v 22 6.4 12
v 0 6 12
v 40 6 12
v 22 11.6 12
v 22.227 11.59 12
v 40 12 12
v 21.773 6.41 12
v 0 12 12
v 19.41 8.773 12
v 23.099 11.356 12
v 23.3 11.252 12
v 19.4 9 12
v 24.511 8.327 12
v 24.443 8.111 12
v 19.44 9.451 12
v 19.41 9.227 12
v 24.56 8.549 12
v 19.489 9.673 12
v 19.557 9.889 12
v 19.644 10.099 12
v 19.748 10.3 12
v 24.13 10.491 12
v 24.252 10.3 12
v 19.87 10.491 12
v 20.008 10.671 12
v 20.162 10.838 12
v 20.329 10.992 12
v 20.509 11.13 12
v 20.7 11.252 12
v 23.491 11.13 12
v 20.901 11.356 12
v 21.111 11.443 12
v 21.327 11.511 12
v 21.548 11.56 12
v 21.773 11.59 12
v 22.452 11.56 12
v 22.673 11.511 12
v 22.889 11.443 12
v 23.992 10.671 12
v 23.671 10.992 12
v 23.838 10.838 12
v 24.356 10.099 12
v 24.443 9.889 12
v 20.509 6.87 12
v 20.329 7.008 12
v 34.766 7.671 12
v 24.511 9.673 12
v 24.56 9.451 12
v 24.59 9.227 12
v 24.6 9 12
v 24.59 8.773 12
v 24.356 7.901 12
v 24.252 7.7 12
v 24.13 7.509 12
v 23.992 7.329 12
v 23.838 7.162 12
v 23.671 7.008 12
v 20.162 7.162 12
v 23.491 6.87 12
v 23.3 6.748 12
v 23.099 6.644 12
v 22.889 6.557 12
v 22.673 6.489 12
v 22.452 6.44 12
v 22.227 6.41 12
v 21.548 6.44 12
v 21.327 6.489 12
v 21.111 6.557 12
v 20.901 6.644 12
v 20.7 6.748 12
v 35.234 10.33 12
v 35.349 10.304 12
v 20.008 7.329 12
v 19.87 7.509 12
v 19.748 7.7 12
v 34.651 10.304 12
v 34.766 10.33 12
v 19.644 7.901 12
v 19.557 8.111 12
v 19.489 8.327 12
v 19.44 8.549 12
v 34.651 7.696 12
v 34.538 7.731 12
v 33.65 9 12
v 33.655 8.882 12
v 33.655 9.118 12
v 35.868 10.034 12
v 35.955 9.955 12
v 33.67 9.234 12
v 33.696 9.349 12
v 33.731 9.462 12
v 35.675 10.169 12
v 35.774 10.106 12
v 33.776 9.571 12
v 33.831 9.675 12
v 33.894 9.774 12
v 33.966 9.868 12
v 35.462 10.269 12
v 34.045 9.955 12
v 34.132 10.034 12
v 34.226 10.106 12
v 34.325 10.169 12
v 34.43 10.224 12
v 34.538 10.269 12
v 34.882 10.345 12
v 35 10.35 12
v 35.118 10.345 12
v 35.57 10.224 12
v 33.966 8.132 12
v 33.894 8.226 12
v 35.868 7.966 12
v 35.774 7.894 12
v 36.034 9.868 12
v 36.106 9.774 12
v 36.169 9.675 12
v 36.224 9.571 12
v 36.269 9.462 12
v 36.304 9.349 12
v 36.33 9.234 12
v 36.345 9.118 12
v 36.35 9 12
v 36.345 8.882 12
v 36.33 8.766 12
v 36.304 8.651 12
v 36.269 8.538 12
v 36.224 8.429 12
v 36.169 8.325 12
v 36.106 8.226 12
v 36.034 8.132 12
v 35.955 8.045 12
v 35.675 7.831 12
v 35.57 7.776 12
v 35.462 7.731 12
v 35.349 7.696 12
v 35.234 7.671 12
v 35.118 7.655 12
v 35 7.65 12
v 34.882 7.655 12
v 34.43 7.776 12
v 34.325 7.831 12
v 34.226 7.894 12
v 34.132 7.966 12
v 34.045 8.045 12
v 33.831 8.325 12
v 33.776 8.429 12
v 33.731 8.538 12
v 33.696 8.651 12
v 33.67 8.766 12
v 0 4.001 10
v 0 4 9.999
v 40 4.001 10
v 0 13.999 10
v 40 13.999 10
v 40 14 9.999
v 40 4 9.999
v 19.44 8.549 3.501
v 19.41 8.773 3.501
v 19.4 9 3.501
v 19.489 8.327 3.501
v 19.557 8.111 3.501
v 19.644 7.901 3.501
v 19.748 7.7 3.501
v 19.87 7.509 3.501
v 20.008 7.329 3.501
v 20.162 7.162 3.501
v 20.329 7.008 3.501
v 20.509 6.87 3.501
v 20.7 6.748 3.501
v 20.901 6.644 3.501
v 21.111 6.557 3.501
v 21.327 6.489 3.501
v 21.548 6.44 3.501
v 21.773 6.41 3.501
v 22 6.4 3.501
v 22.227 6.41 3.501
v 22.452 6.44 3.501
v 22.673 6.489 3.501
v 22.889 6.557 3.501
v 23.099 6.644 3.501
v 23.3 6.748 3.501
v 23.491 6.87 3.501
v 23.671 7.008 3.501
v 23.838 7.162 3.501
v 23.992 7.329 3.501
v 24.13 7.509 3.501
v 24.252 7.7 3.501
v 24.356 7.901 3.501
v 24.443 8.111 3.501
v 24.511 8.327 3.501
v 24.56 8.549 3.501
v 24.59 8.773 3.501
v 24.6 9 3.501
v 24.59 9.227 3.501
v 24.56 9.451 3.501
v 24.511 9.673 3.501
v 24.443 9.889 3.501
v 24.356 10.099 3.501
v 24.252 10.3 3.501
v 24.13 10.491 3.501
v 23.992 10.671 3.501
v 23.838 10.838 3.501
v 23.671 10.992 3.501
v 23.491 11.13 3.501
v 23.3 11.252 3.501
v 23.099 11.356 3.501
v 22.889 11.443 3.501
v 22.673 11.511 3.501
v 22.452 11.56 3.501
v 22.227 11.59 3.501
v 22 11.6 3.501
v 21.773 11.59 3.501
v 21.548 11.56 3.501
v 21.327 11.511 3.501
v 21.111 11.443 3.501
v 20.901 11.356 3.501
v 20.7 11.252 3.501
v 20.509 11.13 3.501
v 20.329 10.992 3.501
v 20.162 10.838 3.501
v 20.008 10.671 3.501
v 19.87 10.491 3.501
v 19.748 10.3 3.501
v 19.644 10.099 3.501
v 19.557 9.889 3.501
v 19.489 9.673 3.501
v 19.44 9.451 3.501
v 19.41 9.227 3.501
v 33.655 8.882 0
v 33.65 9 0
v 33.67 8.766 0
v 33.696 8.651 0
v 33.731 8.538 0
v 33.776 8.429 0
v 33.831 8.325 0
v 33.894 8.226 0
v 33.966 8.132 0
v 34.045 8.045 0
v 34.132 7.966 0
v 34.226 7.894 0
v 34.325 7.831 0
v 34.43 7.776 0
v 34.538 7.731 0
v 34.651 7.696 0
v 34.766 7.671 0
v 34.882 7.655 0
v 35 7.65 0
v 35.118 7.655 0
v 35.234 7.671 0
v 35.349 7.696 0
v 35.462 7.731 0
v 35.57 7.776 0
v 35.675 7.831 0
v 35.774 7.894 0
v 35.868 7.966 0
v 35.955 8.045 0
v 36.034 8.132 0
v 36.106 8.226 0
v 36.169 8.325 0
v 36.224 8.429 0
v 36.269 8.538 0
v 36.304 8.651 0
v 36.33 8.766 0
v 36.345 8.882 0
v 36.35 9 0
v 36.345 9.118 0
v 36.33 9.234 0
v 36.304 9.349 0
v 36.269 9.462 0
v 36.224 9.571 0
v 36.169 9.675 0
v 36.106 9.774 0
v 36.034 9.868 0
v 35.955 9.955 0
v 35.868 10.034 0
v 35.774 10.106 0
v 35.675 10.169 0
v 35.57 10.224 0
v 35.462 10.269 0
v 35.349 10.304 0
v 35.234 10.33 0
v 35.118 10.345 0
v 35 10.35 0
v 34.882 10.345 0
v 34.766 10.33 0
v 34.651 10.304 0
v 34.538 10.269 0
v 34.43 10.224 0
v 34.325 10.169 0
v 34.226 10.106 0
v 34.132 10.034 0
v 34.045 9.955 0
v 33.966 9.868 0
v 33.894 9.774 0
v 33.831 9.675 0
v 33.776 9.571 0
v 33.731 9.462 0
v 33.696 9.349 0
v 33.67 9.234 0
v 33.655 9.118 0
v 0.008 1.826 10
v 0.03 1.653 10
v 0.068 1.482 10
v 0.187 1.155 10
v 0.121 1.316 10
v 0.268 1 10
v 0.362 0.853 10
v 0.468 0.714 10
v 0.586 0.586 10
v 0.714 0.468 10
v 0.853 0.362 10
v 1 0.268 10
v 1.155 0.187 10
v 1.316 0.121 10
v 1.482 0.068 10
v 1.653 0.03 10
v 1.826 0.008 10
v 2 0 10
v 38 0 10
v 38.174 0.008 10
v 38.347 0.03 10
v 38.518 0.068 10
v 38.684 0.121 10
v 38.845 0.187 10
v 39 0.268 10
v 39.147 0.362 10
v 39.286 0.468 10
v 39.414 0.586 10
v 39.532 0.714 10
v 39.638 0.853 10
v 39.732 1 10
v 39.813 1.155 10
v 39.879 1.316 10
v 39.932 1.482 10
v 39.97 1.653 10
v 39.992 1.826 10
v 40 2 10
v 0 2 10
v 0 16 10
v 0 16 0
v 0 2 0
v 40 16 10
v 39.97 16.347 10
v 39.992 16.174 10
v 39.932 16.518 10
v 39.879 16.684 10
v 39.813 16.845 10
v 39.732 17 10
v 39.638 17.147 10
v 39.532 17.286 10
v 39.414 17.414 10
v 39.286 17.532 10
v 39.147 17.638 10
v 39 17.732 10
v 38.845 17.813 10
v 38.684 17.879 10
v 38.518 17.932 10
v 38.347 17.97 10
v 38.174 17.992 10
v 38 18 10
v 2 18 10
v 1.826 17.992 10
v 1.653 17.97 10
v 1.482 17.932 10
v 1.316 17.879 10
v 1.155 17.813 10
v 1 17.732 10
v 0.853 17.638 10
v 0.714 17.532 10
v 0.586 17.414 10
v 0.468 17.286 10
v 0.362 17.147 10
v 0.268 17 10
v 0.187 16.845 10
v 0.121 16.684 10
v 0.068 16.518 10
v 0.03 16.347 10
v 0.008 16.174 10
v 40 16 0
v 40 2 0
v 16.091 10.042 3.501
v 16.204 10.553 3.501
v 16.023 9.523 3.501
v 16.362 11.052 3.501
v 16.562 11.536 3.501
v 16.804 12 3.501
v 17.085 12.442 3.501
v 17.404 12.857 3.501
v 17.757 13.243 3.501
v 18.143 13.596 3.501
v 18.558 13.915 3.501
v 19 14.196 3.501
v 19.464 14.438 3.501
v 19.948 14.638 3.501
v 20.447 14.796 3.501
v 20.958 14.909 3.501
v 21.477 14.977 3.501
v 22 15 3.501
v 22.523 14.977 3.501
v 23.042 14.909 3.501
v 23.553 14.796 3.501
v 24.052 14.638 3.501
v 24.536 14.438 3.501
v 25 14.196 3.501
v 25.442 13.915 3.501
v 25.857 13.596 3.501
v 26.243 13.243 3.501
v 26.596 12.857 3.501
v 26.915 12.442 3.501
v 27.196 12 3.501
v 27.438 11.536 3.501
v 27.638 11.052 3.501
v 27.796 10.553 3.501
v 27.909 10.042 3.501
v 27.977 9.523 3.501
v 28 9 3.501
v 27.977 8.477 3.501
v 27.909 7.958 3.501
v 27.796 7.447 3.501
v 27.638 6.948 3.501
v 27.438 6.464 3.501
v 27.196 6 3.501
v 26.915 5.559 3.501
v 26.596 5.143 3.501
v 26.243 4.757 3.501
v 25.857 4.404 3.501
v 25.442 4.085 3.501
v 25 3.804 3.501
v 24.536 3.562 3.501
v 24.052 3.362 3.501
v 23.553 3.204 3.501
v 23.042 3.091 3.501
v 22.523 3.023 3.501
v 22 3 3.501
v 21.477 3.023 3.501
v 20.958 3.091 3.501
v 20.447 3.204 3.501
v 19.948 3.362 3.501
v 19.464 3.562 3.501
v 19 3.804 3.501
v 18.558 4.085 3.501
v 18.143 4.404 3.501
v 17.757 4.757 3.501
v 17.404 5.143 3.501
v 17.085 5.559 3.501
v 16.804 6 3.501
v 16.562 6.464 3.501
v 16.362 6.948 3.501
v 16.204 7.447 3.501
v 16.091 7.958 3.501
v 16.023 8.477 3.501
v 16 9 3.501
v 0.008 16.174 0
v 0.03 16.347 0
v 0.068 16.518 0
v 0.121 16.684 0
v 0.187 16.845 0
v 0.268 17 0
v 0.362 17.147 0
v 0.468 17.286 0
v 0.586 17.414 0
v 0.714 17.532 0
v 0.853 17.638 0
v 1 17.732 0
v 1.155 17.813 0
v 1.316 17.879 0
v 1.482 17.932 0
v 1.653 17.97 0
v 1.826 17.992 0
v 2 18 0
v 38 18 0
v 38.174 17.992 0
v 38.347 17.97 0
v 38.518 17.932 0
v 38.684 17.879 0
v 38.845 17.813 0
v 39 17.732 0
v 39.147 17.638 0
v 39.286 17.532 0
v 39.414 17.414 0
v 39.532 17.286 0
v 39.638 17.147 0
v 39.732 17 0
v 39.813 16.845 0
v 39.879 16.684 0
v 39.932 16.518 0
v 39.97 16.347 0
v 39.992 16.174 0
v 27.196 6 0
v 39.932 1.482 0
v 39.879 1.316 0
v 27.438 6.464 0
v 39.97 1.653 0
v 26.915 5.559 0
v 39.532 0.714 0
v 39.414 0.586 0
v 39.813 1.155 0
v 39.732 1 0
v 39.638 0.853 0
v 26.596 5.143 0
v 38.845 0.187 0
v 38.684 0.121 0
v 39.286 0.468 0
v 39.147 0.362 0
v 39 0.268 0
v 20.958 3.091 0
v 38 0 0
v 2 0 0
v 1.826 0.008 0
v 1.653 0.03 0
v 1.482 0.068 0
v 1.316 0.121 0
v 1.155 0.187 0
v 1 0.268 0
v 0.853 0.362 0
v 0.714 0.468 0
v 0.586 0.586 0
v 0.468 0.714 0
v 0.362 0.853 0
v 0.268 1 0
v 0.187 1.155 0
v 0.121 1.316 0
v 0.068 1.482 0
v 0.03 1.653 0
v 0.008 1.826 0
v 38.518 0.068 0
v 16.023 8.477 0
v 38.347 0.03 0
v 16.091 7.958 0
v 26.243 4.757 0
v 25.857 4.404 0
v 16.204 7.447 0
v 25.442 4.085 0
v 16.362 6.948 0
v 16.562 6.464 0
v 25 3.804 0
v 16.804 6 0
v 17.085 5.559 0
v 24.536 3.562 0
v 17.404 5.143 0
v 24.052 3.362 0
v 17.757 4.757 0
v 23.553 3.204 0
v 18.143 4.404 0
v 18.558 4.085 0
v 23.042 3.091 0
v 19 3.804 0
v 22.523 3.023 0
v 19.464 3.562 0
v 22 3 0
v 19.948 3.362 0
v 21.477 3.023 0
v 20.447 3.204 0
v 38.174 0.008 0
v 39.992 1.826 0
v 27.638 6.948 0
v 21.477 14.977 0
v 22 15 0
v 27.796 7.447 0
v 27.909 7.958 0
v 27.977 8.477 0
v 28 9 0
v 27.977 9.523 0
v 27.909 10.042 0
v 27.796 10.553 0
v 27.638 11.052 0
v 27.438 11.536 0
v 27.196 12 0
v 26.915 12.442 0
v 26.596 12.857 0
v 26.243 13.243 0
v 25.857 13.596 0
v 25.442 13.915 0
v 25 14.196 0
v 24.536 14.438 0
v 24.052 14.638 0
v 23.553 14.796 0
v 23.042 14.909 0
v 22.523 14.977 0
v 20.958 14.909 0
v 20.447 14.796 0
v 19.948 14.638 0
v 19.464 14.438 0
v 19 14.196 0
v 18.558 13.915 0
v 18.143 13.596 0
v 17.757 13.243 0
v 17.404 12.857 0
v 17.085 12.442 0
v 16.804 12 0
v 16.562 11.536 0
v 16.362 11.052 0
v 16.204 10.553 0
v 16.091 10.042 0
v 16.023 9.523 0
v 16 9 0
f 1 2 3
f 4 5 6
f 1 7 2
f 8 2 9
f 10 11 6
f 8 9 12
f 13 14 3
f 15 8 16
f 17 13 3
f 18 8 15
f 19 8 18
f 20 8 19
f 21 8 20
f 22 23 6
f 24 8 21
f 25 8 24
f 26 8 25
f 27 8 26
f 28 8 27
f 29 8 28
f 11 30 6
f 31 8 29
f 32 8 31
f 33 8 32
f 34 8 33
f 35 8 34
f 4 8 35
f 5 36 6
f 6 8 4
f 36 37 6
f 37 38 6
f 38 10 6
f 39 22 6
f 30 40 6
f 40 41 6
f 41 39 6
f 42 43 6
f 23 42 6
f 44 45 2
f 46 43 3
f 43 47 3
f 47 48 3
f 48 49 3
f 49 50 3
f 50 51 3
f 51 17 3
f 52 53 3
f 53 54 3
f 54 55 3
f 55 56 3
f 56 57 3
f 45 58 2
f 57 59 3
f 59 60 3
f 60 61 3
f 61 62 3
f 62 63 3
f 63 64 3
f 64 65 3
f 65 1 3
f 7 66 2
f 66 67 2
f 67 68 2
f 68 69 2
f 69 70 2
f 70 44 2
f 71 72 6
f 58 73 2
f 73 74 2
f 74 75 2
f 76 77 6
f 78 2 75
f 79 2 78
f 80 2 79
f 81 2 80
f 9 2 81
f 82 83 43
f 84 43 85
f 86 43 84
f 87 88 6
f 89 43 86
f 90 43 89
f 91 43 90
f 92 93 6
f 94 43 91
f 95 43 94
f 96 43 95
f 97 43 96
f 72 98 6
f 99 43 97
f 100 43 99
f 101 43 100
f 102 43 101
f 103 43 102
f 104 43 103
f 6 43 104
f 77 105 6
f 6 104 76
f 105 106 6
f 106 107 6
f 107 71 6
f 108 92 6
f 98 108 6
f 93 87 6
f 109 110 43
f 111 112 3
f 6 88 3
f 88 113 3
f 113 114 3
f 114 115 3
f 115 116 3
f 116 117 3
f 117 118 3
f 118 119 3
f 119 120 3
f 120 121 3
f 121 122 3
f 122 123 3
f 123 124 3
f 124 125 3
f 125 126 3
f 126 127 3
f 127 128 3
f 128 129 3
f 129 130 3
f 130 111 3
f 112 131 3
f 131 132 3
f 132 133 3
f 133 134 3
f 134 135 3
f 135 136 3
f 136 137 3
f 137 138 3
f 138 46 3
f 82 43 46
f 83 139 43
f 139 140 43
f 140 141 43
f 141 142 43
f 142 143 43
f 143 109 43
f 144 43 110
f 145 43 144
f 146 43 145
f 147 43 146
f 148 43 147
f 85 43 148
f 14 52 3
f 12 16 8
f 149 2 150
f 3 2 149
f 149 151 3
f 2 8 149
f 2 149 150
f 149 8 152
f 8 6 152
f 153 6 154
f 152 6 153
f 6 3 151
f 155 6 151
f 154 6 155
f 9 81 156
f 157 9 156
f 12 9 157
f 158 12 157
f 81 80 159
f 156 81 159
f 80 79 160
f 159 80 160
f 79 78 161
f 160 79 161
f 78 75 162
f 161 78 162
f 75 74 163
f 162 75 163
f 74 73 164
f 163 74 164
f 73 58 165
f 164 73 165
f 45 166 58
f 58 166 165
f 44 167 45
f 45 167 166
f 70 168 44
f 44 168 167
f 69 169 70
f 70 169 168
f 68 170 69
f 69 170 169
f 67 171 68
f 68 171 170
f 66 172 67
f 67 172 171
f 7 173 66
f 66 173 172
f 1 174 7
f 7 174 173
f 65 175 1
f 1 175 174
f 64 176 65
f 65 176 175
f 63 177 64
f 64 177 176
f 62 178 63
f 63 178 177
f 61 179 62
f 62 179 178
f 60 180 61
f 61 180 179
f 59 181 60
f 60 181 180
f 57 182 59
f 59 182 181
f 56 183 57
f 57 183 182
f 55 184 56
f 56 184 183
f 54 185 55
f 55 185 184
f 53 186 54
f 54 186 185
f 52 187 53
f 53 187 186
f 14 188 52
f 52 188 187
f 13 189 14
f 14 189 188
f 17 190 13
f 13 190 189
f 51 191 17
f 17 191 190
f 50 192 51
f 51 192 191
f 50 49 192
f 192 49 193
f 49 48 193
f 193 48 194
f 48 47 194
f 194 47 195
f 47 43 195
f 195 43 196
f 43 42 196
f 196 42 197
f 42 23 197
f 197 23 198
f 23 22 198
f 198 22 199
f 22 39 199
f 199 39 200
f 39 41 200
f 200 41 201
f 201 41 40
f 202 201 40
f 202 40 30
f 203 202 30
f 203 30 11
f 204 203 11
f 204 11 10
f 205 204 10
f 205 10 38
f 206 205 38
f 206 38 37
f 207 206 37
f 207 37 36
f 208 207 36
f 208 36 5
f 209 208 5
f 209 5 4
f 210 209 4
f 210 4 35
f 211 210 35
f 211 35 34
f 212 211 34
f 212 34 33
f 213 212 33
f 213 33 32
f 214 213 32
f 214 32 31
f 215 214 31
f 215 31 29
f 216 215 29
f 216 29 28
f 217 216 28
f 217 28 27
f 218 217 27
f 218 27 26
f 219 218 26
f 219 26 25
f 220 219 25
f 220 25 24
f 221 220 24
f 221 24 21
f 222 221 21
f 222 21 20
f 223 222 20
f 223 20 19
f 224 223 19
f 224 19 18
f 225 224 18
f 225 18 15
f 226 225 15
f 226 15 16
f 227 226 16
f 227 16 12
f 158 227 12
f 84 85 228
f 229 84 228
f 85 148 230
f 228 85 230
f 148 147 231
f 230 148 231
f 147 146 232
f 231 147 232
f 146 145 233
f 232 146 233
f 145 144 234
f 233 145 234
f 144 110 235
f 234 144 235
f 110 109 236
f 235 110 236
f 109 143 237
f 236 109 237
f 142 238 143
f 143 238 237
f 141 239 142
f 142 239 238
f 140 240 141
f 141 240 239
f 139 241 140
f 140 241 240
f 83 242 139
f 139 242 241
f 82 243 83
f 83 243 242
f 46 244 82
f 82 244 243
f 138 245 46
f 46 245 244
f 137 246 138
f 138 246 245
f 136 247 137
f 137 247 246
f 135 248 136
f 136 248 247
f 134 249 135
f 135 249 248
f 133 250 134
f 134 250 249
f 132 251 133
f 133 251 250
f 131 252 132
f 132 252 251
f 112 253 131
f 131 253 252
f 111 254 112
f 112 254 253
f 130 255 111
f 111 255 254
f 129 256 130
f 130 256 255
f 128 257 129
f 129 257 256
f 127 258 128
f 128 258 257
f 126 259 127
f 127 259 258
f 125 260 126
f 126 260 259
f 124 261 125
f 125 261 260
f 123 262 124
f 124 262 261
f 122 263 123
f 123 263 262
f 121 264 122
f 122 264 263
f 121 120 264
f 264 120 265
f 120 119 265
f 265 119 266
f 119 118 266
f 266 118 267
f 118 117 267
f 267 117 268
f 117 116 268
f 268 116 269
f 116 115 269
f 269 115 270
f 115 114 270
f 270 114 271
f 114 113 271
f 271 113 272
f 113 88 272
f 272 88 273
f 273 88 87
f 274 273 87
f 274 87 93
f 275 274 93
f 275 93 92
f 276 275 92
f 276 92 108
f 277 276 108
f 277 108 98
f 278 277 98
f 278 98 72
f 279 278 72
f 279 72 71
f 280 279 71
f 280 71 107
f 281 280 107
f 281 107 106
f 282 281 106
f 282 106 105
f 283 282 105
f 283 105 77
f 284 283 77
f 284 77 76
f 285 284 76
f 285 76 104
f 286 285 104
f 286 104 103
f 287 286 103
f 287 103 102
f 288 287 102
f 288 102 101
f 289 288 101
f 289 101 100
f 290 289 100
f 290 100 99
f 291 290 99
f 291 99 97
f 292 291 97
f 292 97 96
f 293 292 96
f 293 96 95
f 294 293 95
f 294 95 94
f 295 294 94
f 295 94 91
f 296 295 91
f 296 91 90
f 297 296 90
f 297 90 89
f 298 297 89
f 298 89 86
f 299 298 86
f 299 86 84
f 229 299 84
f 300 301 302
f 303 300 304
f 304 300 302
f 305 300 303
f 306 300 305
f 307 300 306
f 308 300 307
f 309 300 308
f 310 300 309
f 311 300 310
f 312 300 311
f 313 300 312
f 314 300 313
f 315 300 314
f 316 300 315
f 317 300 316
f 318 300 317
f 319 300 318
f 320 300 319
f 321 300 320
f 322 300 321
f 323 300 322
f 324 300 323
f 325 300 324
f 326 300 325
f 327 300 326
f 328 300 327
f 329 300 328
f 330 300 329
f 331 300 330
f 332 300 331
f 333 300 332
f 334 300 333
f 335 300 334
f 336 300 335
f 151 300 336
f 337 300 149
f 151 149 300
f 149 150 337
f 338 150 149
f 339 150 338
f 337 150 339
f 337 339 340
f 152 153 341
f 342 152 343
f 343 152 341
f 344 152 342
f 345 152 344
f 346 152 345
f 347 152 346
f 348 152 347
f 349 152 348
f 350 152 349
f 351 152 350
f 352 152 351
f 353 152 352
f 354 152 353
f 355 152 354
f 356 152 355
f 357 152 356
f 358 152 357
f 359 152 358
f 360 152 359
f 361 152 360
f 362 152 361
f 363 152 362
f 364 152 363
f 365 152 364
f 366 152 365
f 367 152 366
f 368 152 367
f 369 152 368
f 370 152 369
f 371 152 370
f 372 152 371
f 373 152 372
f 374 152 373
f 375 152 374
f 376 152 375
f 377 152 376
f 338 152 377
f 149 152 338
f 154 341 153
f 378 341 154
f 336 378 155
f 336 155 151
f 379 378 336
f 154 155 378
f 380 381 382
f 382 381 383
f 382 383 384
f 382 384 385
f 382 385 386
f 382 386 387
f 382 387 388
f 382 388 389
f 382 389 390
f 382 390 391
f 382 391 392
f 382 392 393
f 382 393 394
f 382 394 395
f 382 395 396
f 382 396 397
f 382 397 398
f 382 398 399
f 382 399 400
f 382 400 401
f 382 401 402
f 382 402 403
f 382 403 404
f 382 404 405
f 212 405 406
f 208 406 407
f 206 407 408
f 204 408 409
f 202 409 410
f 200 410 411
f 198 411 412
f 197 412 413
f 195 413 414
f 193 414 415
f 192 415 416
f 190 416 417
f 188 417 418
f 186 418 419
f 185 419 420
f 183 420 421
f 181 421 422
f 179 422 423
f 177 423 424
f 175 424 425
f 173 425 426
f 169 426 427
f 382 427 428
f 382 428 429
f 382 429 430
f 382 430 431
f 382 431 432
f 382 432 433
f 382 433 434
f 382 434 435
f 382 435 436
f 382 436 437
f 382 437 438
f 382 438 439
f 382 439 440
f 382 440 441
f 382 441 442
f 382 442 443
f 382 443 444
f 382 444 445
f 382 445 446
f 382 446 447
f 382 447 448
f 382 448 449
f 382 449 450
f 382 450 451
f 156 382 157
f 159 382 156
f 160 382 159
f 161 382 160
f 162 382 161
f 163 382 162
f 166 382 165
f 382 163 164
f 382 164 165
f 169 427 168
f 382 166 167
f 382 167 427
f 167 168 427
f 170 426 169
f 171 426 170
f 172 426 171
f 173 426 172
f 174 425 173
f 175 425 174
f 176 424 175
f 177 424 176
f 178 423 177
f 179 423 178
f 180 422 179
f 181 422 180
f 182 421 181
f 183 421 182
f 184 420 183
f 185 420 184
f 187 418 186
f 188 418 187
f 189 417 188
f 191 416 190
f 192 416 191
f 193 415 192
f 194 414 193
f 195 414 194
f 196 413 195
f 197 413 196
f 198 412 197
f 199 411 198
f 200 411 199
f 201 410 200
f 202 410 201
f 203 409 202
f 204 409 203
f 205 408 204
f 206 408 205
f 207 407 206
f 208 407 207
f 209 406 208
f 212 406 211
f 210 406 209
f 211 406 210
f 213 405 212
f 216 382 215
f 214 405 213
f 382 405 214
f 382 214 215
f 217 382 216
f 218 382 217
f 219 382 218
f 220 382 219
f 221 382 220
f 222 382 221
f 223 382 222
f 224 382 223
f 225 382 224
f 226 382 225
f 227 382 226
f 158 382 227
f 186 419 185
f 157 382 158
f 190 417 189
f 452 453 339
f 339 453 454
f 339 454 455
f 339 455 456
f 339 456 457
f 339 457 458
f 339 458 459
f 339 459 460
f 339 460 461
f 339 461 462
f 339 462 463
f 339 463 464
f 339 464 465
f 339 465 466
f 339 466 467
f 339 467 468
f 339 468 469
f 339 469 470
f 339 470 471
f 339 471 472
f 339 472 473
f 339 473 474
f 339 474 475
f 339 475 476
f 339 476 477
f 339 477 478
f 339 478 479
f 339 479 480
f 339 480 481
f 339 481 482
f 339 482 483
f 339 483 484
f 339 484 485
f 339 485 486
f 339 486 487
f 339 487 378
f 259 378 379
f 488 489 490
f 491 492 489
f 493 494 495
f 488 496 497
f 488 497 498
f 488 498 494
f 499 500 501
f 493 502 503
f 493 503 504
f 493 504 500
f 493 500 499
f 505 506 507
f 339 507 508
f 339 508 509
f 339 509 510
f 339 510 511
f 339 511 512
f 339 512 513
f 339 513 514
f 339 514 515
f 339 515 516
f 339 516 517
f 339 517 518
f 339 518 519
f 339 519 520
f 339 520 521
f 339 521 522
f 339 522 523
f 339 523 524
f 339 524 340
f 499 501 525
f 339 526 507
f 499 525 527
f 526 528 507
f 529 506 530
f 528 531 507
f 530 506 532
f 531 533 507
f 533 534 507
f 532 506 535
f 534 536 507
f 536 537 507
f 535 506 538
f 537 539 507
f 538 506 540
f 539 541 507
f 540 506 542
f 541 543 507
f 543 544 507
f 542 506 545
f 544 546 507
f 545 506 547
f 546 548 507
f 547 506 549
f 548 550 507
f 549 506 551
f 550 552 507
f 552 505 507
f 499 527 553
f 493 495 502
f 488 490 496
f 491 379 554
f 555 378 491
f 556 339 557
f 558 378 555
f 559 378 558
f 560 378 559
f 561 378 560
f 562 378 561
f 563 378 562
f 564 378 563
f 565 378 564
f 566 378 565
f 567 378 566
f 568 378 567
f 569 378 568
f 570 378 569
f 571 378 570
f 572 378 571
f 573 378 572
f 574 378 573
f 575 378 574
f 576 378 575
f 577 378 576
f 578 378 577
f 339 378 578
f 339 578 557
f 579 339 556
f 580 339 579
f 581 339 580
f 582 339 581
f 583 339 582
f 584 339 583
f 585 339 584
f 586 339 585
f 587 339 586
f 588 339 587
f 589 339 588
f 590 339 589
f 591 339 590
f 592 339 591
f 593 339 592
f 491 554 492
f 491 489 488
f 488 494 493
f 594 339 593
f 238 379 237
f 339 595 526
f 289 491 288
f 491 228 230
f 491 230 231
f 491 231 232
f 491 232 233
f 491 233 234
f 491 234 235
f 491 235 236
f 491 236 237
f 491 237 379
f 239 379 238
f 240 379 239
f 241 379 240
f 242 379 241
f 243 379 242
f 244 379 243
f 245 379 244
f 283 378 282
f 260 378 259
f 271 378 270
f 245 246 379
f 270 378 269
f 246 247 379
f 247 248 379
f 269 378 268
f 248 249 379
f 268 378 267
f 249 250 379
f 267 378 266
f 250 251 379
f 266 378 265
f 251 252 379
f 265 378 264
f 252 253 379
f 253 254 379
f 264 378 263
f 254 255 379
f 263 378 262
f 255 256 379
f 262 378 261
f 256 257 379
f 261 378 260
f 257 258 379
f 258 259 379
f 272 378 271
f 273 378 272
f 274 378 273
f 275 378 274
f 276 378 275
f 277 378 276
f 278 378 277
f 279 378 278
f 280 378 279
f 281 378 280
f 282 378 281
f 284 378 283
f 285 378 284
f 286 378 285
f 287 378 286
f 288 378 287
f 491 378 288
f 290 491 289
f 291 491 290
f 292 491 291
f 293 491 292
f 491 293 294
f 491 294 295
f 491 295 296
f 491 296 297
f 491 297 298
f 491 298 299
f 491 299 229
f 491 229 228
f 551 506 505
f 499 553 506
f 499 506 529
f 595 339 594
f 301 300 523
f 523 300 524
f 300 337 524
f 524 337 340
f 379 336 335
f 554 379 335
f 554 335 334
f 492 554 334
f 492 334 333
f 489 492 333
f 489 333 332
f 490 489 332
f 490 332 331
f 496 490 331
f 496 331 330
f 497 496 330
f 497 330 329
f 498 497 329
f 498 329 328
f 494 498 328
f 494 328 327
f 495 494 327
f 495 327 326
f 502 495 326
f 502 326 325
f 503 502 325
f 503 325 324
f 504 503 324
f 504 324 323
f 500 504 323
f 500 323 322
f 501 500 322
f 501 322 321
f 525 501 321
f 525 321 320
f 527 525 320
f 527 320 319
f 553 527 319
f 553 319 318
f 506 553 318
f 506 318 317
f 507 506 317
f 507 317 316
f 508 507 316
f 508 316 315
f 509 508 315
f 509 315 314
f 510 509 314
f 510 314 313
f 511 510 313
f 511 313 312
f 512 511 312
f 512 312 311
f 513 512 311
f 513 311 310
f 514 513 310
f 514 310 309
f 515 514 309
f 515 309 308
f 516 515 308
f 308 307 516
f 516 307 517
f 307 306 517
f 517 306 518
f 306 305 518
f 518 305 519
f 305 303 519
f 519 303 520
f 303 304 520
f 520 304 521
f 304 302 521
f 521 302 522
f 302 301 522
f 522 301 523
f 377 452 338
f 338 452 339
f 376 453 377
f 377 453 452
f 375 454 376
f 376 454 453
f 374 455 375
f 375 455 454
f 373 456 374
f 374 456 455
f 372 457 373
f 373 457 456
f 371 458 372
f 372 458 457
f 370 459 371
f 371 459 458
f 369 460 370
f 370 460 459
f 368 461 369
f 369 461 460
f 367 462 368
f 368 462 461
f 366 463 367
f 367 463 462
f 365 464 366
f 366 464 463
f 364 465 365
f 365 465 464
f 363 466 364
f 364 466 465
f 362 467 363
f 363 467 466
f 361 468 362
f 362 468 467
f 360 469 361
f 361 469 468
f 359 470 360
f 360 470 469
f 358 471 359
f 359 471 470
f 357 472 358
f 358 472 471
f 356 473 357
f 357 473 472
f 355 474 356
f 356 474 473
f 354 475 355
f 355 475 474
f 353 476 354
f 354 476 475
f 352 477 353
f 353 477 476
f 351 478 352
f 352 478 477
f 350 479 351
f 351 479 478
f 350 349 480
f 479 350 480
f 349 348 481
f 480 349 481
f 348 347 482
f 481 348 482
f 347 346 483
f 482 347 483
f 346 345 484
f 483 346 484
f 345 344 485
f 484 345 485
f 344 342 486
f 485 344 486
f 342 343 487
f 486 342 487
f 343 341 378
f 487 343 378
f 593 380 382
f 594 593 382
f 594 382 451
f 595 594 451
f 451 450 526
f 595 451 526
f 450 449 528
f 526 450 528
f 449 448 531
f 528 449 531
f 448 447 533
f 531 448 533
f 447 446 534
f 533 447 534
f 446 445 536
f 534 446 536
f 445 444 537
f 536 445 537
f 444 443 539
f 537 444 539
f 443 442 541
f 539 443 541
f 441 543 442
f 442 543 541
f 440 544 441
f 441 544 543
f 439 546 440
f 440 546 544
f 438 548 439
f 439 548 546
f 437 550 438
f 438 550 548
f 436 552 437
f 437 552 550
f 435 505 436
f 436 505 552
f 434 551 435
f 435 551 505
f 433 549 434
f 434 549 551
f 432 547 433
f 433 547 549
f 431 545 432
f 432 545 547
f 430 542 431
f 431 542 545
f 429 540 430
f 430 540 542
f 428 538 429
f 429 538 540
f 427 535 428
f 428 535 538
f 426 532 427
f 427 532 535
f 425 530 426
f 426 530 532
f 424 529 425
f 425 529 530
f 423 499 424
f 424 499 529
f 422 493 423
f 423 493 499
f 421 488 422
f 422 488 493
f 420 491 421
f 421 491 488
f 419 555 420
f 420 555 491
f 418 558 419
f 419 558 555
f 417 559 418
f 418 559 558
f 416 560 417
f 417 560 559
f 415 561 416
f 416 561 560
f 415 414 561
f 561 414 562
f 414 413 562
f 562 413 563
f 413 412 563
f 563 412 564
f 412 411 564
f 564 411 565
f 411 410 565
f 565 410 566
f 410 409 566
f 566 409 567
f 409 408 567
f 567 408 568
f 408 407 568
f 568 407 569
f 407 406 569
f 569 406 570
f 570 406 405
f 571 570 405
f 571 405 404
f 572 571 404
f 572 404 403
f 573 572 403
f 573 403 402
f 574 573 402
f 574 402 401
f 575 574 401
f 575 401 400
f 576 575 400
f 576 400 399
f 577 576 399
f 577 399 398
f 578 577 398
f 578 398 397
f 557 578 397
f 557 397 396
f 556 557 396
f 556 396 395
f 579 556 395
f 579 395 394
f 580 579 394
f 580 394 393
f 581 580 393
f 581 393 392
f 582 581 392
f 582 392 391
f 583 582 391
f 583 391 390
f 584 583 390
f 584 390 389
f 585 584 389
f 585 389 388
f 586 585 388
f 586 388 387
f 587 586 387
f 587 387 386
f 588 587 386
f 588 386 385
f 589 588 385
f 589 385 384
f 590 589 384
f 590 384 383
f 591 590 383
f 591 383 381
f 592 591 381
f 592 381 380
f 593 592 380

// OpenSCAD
// Makefarm Prusa i3v screw adjusted Z stop.
// Part 2 of 2: the screw holder.

// Set to 0 for final STL compilation (slow). Set to 1 for quick
// debugging (lower quality)
debug = 0;

// Determine the quality of circles (better = slower compilation).
$fn = (debug != 0) ? 12 : 72;

// Defines of the main block, without the slot and the holes.
body_width = 18; 
body_length = 40; 
body_height = 10; 
body_corner_radius = 2;

// Definse of the V slot.
slot_width = 10;
slot_height = 2;
slot_angle = 45;
slot_margin = 0;

// Defines of the M5 screw hole.
slot_hole_offset_from_edge = 18;
slot_hole_diameter = 5.2; 

// Defines of the M5 screw head sink hole.
slot_hole_sink_thickness = 6.5;  // distance from aluminum rail surface.
slot_hole_sink_diameter = 12;

// Defines the M3 adjustment screw hole
screw_hole_offset_from_edge = 5;
screw_hole_diameter = 2.7;  

// Small >0 dimension to disambigue operations.
eps = 0.001;
eps2 = 2*eps;

// Generic cube with for corners rounded.
module rounded_cube(xlen, ylen, zlen, r) {
  translate([r, r, 0]) minkowski() {
    cube([xlen-2*r, ylen-2*r, zlen/2]);
    cylinder(r=r, h=zlen/2);
 }
}

// The main block of the part, without the slot and holes.
module body() {
  rounded_cube(body_length, body_width, body_height, body_corner_radius);
}

// Generic vertical hole.
module hole(x, y, h, r) {
  translate([x, y, -eps]) cylinder(r=r, h=h+eps2);
}

// The V slot.
module slot() {
  inset = slot_height / tan(slot_angle);
  translate([0, (body_width- slot_width)/2, body_height - eps]) 
  rotate([90, 0, 90])
  linear_extrude(height=body_length - slot_margin)
      polygon(points=[[0,0],[inset, slot_height + eps],
         [slot_width-inset, slot_height + eps],[slot_width,0]]);
}


// The M5 hole and screw head sink.
module slot_hole() {
  hole_x = body_length - slot_hole_offset_from_edge;
  hole_y = body_width/2;
  hole(hole_x, hole_y, body_height+slot_height, slot_hole_diameter/2);
  hole(hole_x, hole_y, body_height - slot_hole_sink_thickness, slot_hole_sink_diameter/2);
}

// The M3 screw hole.
module screw_hole() {
    hole(body_length - slot_margin - screw_hole_offset_from_edge,
         body_width/2, body_height + slot_height, screw_hole_diameter/2);
}

// The entire part.
module main() {
  difference() {
    union() {
      body();
      slot();
    }
    slot_hole();
    screw_hole();
  }
}

main();
